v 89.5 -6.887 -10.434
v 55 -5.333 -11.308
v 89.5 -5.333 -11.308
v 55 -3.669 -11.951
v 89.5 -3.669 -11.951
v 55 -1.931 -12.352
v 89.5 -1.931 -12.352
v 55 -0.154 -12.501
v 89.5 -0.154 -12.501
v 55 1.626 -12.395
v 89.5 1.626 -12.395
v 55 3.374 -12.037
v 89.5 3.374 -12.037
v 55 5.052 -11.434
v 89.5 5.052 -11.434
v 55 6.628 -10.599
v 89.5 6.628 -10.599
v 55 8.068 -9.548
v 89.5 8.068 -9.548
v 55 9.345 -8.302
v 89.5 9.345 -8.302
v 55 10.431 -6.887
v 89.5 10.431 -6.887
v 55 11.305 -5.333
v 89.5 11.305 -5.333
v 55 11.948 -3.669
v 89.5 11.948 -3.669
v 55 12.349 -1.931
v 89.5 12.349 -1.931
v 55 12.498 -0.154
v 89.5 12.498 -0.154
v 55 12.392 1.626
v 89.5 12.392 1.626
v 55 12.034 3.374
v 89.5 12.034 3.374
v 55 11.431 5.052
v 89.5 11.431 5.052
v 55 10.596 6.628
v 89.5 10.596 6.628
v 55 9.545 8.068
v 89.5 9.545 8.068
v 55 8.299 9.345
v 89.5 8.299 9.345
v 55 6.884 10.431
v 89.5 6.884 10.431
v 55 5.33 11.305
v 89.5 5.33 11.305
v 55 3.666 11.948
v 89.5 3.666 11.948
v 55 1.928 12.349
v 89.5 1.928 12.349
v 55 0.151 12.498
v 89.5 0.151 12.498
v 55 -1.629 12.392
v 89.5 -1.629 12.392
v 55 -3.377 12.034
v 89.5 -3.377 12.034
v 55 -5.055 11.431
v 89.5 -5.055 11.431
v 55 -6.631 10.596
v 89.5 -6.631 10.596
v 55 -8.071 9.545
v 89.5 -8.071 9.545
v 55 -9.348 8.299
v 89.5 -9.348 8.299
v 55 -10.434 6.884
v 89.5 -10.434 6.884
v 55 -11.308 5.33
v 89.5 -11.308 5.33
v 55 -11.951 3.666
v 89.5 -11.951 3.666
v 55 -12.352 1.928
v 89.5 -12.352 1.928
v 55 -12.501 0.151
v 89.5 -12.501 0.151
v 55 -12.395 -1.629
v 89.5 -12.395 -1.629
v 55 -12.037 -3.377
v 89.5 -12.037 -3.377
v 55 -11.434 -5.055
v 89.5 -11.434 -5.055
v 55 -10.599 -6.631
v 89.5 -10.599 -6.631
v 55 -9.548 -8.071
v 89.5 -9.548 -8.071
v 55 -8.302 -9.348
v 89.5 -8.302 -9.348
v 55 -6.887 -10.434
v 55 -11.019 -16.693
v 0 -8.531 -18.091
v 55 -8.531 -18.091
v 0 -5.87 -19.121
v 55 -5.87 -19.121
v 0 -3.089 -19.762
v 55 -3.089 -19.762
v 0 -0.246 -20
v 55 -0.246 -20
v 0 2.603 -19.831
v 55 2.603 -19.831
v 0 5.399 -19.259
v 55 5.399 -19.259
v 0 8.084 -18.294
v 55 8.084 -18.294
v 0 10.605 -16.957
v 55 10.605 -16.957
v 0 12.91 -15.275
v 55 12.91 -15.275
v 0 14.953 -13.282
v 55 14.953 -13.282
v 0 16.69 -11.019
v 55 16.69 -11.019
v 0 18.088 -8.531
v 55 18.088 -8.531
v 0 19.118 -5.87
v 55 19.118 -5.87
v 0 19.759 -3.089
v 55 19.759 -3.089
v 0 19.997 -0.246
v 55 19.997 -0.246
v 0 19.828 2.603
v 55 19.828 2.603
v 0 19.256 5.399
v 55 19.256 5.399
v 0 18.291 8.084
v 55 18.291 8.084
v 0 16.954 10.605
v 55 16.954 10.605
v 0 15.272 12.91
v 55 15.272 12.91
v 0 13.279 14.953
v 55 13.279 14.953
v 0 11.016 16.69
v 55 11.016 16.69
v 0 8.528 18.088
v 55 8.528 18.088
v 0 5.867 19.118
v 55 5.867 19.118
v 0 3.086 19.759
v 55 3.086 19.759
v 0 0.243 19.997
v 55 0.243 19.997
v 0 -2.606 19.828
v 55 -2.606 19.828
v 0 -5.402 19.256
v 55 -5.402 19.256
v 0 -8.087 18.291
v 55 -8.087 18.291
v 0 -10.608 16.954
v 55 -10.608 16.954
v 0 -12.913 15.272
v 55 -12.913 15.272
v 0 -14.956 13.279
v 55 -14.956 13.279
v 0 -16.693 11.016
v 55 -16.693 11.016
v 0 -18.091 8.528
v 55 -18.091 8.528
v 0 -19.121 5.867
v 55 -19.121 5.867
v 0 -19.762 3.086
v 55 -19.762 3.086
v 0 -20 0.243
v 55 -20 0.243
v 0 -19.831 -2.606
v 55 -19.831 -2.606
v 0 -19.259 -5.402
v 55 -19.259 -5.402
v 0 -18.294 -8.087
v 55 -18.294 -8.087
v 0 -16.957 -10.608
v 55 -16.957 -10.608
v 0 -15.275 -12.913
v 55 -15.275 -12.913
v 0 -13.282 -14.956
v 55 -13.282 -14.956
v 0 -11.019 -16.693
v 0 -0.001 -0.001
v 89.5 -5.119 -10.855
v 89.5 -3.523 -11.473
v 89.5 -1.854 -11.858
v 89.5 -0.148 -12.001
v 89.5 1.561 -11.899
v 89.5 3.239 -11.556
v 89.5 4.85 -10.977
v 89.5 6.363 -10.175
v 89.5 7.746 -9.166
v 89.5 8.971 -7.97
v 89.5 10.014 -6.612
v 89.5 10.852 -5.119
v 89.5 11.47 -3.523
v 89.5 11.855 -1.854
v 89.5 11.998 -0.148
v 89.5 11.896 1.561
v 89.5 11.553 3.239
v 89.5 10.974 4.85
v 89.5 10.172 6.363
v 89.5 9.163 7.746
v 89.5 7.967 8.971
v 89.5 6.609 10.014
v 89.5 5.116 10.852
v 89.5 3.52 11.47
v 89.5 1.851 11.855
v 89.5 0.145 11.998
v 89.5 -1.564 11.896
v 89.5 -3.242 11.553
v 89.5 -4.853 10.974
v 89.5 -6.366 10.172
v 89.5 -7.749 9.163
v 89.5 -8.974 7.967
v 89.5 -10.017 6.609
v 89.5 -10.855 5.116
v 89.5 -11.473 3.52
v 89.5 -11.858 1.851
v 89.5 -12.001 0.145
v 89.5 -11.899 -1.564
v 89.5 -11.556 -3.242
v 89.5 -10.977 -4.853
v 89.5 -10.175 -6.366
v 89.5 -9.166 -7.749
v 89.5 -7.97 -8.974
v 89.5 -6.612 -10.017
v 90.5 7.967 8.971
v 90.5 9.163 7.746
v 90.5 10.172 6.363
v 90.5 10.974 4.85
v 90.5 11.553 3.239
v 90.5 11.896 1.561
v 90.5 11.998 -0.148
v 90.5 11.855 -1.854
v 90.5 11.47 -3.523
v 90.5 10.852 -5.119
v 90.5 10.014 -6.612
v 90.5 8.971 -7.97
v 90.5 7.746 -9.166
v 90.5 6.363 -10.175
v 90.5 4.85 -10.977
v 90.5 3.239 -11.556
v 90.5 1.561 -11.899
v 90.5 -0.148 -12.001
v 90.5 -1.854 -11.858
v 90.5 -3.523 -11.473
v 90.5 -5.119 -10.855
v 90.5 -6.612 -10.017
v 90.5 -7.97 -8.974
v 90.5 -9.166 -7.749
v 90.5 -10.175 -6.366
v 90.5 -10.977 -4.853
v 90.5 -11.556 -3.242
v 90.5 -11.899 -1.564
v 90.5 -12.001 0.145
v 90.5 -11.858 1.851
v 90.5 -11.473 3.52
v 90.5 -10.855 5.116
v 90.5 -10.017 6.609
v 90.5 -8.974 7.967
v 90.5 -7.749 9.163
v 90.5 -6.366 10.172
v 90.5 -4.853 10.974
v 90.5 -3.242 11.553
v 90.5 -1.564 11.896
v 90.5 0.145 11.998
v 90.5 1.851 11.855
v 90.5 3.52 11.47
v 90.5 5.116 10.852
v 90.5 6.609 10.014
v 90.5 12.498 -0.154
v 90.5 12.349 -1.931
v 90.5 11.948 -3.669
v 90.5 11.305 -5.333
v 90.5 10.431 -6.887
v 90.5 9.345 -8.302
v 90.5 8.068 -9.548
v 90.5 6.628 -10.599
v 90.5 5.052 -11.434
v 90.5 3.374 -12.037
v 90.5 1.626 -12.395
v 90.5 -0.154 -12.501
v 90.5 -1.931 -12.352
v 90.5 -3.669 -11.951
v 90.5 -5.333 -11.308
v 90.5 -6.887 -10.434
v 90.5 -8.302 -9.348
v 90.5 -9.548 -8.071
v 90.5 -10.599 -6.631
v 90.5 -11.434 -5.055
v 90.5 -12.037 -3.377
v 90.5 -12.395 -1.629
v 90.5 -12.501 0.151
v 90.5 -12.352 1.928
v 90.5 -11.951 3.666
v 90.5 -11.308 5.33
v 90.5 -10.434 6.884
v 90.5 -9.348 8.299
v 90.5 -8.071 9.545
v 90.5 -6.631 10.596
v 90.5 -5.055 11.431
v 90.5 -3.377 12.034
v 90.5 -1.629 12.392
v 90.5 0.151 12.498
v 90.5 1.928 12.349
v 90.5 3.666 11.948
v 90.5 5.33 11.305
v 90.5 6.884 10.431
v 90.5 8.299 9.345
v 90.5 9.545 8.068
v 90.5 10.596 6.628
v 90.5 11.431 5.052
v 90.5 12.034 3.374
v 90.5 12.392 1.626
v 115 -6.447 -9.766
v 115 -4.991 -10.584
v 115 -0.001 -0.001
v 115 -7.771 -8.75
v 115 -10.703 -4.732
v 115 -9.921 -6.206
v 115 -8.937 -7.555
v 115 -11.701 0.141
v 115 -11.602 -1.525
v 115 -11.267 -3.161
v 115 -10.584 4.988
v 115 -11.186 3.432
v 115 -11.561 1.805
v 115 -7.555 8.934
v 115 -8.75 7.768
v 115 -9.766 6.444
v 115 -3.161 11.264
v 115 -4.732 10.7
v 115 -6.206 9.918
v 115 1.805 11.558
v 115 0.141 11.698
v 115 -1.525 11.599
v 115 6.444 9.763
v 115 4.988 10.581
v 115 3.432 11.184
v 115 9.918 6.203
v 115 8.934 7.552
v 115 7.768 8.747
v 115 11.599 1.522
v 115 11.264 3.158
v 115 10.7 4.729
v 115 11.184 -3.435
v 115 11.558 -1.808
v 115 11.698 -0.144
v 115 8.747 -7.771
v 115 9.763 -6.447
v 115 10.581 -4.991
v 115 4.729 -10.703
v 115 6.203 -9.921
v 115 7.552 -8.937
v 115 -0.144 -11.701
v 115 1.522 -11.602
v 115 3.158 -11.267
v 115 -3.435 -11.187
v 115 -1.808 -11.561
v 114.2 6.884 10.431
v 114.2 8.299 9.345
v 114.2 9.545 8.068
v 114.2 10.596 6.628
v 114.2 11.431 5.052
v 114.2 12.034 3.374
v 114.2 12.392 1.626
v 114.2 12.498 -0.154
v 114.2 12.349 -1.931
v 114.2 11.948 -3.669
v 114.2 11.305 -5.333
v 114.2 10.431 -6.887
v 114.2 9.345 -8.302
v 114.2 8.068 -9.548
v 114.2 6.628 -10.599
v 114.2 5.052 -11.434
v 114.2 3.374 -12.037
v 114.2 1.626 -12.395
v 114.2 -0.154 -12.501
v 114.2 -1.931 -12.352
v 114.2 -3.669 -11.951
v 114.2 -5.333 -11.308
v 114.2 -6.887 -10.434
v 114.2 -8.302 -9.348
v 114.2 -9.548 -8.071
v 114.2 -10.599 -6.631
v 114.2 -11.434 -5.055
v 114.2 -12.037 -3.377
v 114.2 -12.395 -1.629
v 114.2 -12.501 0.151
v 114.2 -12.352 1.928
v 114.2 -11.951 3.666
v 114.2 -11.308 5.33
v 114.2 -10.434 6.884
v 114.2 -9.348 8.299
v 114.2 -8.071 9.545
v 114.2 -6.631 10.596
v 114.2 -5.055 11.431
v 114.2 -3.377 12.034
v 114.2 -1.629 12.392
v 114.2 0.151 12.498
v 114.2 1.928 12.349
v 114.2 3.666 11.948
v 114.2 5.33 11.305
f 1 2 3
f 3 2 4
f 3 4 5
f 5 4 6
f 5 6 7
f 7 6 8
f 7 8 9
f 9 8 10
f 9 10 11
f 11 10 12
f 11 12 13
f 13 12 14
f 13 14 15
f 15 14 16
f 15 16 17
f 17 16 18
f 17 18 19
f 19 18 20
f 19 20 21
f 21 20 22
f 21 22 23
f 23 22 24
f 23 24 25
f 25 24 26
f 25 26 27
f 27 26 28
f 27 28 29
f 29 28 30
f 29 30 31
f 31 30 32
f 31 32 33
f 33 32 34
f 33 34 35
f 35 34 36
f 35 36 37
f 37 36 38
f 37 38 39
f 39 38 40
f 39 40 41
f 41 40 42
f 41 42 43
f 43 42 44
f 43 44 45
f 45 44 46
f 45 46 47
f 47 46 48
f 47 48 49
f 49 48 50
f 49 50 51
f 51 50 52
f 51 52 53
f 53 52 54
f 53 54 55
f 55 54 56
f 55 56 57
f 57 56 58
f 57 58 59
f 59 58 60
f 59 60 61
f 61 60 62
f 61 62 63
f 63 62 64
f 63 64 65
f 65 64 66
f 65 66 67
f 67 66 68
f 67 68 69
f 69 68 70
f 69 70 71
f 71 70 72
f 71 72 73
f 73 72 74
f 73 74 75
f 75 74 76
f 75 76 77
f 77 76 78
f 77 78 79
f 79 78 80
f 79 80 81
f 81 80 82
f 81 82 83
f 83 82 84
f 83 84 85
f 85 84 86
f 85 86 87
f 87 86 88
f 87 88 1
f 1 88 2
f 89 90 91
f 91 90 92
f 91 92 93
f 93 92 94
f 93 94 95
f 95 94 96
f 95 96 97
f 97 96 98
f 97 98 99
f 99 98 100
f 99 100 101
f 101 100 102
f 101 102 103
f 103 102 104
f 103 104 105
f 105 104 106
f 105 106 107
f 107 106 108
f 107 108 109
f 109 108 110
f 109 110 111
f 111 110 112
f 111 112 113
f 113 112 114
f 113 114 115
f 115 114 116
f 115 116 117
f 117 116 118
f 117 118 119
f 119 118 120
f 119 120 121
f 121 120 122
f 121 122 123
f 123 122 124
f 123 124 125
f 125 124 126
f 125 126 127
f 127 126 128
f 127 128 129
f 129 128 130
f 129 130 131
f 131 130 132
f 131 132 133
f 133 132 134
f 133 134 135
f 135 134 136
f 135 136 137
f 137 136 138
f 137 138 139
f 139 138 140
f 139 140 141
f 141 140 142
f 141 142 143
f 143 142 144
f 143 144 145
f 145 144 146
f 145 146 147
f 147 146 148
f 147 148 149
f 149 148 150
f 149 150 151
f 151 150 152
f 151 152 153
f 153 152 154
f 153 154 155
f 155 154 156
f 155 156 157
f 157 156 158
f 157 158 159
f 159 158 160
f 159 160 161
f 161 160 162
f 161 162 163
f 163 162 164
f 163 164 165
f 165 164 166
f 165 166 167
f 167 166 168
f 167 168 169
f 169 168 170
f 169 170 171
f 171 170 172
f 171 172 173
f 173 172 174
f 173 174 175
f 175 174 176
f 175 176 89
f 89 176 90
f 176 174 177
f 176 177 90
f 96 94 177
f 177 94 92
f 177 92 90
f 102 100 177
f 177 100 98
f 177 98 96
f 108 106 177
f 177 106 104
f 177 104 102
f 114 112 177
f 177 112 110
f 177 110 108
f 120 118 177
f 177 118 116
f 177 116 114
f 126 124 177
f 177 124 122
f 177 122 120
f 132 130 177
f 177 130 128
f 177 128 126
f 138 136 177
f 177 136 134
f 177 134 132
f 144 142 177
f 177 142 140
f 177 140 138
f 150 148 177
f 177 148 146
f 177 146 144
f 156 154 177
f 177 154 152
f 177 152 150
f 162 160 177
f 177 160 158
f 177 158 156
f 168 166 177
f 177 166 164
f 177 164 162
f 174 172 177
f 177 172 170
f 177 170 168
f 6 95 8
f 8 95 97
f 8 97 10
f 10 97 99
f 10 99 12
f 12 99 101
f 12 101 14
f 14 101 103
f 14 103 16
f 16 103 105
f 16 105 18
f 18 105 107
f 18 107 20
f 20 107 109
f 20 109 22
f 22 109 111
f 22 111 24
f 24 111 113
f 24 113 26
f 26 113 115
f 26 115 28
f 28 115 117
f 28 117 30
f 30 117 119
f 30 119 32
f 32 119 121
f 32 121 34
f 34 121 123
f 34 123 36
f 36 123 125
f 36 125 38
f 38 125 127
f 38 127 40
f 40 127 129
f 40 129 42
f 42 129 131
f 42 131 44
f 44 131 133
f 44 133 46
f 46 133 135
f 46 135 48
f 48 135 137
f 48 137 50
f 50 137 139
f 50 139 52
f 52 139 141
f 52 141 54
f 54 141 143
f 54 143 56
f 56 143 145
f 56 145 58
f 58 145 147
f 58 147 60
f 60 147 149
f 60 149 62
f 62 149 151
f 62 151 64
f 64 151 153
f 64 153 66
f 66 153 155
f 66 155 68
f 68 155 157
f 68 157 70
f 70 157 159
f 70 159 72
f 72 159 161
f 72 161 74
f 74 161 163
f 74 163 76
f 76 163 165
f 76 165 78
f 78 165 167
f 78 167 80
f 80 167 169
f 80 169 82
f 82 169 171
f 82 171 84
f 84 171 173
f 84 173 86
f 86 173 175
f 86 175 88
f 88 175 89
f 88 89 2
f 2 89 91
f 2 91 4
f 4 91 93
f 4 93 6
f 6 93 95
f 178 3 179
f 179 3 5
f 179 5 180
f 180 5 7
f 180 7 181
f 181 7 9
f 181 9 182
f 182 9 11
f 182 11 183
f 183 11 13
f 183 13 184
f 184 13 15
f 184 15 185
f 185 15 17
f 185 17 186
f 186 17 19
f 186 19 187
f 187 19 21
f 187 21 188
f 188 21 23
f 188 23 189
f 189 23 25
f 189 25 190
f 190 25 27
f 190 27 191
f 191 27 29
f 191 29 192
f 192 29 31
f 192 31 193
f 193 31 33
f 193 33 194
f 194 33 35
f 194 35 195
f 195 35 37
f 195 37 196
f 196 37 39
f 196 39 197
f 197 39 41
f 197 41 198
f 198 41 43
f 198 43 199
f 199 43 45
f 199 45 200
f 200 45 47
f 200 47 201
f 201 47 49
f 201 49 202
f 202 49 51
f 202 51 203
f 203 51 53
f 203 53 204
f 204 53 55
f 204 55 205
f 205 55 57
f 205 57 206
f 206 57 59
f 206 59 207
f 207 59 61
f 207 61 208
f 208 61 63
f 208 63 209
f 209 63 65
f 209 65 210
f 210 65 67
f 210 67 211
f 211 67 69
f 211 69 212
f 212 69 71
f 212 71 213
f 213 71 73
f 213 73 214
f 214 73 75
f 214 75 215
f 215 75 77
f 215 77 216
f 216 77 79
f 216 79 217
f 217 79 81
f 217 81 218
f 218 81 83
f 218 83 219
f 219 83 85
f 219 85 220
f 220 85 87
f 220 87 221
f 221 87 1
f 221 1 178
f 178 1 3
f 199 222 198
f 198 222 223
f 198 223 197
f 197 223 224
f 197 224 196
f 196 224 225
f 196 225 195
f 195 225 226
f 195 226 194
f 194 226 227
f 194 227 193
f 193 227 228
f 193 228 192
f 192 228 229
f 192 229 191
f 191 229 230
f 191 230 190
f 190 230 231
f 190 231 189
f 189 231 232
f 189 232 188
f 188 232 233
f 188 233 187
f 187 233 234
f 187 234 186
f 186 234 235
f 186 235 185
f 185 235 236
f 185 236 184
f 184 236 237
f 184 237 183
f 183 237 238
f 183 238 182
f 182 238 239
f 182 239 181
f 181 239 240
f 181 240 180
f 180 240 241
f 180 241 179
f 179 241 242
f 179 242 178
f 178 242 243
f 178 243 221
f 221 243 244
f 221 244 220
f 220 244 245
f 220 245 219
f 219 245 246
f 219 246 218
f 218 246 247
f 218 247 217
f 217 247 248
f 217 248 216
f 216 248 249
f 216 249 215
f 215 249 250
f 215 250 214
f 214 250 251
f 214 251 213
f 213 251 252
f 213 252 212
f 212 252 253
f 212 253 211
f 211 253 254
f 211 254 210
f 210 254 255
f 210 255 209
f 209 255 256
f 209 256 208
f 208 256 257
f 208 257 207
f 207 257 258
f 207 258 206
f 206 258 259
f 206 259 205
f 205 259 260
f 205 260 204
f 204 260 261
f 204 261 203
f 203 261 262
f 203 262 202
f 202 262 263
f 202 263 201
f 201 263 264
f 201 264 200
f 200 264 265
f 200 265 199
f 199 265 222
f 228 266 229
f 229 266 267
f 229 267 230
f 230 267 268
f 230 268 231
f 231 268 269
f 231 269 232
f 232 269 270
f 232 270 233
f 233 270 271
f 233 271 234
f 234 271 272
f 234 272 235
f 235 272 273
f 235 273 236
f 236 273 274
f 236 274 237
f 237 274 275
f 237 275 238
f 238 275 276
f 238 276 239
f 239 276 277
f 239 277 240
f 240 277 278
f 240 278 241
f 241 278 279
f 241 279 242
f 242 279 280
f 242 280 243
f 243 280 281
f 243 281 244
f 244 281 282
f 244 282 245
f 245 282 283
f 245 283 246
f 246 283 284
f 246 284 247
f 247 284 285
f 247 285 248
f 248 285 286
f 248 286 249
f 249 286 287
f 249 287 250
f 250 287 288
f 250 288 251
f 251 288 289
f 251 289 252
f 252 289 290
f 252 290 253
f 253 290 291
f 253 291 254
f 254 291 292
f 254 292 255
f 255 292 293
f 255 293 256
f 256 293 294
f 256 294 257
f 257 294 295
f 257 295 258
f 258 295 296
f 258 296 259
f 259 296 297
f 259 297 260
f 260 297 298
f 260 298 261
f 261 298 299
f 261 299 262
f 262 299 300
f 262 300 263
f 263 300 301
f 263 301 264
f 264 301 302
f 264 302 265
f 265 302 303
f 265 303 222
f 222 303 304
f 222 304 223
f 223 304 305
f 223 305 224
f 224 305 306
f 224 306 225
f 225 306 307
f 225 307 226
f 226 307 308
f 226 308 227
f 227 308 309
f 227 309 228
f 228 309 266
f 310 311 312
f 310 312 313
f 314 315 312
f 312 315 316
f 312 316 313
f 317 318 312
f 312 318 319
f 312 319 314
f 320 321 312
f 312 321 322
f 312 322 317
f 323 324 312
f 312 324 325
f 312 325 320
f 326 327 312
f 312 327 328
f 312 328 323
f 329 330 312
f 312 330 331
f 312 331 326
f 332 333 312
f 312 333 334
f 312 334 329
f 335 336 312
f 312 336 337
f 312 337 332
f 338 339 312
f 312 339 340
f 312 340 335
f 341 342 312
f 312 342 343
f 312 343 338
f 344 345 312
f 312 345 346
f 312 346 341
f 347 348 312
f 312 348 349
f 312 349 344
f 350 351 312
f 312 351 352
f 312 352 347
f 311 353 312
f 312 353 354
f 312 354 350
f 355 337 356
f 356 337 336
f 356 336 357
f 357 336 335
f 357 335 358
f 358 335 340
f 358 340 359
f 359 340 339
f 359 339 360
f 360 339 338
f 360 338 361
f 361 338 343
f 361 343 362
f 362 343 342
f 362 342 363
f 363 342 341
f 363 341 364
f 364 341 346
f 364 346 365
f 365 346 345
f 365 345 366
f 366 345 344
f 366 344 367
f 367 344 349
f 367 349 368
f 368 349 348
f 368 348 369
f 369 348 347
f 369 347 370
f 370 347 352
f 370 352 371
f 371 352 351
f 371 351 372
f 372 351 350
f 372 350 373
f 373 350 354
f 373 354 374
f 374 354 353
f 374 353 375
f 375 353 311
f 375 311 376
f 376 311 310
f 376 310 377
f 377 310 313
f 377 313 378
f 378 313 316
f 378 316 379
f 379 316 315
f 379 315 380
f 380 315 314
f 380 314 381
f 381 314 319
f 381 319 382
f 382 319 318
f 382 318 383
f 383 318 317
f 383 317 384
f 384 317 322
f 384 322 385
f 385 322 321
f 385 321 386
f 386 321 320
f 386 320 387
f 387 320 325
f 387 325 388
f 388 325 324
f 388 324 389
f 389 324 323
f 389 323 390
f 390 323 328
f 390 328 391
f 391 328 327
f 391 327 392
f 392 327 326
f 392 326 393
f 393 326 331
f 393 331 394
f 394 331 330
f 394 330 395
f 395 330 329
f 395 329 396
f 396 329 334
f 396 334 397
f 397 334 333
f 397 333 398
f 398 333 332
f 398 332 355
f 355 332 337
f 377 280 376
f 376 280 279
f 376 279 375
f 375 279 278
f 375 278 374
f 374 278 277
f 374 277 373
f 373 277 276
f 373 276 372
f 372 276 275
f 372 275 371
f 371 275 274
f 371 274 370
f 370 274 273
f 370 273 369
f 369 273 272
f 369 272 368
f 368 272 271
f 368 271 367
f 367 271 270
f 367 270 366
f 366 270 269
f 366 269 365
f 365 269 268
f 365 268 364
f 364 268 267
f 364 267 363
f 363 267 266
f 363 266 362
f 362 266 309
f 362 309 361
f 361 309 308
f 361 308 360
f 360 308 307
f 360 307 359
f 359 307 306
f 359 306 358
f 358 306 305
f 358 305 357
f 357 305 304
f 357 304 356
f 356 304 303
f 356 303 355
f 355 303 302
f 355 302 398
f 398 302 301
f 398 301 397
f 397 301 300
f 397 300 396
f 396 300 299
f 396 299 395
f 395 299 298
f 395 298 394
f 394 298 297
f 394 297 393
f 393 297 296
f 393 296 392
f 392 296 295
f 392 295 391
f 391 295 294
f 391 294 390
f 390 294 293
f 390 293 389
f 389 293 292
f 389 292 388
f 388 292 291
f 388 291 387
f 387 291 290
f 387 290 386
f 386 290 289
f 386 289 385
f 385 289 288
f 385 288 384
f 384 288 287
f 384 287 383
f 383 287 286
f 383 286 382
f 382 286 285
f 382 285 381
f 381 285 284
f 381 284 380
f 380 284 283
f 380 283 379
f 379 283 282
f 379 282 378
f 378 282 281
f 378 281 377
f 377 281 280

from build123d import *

# Parameters (mm, degrees)
SKIZZE2_W = 1
SKIZZE2_H = 0.5


with BuildPart() as part:
    # Skizze1 → Rotation1 (revolve)
    with BuildSketch(Plane.XY):
        Polygon((0, 20), (0, 0), (115, 0), (115, 11.7), (114.2, 12.5), (55, 12.5), (55, 20), align=None)
    revolve(axis=Axis((0, 0, 0), (1, 0, 0)))

    # Skizze2 → Schnitt-Rotation1 (revolve, cut)
    with BuildSketch(Plane.XY):
        with Locations((90, 12.25)):
            Rectangle(SKIZZE2_W, SKIZZE2_H)
    revolve(axis=Axis((79.835349202, 0, 0), (1, 0, 0)), mode=Mode.SUBTRACT)


solid = part.part
